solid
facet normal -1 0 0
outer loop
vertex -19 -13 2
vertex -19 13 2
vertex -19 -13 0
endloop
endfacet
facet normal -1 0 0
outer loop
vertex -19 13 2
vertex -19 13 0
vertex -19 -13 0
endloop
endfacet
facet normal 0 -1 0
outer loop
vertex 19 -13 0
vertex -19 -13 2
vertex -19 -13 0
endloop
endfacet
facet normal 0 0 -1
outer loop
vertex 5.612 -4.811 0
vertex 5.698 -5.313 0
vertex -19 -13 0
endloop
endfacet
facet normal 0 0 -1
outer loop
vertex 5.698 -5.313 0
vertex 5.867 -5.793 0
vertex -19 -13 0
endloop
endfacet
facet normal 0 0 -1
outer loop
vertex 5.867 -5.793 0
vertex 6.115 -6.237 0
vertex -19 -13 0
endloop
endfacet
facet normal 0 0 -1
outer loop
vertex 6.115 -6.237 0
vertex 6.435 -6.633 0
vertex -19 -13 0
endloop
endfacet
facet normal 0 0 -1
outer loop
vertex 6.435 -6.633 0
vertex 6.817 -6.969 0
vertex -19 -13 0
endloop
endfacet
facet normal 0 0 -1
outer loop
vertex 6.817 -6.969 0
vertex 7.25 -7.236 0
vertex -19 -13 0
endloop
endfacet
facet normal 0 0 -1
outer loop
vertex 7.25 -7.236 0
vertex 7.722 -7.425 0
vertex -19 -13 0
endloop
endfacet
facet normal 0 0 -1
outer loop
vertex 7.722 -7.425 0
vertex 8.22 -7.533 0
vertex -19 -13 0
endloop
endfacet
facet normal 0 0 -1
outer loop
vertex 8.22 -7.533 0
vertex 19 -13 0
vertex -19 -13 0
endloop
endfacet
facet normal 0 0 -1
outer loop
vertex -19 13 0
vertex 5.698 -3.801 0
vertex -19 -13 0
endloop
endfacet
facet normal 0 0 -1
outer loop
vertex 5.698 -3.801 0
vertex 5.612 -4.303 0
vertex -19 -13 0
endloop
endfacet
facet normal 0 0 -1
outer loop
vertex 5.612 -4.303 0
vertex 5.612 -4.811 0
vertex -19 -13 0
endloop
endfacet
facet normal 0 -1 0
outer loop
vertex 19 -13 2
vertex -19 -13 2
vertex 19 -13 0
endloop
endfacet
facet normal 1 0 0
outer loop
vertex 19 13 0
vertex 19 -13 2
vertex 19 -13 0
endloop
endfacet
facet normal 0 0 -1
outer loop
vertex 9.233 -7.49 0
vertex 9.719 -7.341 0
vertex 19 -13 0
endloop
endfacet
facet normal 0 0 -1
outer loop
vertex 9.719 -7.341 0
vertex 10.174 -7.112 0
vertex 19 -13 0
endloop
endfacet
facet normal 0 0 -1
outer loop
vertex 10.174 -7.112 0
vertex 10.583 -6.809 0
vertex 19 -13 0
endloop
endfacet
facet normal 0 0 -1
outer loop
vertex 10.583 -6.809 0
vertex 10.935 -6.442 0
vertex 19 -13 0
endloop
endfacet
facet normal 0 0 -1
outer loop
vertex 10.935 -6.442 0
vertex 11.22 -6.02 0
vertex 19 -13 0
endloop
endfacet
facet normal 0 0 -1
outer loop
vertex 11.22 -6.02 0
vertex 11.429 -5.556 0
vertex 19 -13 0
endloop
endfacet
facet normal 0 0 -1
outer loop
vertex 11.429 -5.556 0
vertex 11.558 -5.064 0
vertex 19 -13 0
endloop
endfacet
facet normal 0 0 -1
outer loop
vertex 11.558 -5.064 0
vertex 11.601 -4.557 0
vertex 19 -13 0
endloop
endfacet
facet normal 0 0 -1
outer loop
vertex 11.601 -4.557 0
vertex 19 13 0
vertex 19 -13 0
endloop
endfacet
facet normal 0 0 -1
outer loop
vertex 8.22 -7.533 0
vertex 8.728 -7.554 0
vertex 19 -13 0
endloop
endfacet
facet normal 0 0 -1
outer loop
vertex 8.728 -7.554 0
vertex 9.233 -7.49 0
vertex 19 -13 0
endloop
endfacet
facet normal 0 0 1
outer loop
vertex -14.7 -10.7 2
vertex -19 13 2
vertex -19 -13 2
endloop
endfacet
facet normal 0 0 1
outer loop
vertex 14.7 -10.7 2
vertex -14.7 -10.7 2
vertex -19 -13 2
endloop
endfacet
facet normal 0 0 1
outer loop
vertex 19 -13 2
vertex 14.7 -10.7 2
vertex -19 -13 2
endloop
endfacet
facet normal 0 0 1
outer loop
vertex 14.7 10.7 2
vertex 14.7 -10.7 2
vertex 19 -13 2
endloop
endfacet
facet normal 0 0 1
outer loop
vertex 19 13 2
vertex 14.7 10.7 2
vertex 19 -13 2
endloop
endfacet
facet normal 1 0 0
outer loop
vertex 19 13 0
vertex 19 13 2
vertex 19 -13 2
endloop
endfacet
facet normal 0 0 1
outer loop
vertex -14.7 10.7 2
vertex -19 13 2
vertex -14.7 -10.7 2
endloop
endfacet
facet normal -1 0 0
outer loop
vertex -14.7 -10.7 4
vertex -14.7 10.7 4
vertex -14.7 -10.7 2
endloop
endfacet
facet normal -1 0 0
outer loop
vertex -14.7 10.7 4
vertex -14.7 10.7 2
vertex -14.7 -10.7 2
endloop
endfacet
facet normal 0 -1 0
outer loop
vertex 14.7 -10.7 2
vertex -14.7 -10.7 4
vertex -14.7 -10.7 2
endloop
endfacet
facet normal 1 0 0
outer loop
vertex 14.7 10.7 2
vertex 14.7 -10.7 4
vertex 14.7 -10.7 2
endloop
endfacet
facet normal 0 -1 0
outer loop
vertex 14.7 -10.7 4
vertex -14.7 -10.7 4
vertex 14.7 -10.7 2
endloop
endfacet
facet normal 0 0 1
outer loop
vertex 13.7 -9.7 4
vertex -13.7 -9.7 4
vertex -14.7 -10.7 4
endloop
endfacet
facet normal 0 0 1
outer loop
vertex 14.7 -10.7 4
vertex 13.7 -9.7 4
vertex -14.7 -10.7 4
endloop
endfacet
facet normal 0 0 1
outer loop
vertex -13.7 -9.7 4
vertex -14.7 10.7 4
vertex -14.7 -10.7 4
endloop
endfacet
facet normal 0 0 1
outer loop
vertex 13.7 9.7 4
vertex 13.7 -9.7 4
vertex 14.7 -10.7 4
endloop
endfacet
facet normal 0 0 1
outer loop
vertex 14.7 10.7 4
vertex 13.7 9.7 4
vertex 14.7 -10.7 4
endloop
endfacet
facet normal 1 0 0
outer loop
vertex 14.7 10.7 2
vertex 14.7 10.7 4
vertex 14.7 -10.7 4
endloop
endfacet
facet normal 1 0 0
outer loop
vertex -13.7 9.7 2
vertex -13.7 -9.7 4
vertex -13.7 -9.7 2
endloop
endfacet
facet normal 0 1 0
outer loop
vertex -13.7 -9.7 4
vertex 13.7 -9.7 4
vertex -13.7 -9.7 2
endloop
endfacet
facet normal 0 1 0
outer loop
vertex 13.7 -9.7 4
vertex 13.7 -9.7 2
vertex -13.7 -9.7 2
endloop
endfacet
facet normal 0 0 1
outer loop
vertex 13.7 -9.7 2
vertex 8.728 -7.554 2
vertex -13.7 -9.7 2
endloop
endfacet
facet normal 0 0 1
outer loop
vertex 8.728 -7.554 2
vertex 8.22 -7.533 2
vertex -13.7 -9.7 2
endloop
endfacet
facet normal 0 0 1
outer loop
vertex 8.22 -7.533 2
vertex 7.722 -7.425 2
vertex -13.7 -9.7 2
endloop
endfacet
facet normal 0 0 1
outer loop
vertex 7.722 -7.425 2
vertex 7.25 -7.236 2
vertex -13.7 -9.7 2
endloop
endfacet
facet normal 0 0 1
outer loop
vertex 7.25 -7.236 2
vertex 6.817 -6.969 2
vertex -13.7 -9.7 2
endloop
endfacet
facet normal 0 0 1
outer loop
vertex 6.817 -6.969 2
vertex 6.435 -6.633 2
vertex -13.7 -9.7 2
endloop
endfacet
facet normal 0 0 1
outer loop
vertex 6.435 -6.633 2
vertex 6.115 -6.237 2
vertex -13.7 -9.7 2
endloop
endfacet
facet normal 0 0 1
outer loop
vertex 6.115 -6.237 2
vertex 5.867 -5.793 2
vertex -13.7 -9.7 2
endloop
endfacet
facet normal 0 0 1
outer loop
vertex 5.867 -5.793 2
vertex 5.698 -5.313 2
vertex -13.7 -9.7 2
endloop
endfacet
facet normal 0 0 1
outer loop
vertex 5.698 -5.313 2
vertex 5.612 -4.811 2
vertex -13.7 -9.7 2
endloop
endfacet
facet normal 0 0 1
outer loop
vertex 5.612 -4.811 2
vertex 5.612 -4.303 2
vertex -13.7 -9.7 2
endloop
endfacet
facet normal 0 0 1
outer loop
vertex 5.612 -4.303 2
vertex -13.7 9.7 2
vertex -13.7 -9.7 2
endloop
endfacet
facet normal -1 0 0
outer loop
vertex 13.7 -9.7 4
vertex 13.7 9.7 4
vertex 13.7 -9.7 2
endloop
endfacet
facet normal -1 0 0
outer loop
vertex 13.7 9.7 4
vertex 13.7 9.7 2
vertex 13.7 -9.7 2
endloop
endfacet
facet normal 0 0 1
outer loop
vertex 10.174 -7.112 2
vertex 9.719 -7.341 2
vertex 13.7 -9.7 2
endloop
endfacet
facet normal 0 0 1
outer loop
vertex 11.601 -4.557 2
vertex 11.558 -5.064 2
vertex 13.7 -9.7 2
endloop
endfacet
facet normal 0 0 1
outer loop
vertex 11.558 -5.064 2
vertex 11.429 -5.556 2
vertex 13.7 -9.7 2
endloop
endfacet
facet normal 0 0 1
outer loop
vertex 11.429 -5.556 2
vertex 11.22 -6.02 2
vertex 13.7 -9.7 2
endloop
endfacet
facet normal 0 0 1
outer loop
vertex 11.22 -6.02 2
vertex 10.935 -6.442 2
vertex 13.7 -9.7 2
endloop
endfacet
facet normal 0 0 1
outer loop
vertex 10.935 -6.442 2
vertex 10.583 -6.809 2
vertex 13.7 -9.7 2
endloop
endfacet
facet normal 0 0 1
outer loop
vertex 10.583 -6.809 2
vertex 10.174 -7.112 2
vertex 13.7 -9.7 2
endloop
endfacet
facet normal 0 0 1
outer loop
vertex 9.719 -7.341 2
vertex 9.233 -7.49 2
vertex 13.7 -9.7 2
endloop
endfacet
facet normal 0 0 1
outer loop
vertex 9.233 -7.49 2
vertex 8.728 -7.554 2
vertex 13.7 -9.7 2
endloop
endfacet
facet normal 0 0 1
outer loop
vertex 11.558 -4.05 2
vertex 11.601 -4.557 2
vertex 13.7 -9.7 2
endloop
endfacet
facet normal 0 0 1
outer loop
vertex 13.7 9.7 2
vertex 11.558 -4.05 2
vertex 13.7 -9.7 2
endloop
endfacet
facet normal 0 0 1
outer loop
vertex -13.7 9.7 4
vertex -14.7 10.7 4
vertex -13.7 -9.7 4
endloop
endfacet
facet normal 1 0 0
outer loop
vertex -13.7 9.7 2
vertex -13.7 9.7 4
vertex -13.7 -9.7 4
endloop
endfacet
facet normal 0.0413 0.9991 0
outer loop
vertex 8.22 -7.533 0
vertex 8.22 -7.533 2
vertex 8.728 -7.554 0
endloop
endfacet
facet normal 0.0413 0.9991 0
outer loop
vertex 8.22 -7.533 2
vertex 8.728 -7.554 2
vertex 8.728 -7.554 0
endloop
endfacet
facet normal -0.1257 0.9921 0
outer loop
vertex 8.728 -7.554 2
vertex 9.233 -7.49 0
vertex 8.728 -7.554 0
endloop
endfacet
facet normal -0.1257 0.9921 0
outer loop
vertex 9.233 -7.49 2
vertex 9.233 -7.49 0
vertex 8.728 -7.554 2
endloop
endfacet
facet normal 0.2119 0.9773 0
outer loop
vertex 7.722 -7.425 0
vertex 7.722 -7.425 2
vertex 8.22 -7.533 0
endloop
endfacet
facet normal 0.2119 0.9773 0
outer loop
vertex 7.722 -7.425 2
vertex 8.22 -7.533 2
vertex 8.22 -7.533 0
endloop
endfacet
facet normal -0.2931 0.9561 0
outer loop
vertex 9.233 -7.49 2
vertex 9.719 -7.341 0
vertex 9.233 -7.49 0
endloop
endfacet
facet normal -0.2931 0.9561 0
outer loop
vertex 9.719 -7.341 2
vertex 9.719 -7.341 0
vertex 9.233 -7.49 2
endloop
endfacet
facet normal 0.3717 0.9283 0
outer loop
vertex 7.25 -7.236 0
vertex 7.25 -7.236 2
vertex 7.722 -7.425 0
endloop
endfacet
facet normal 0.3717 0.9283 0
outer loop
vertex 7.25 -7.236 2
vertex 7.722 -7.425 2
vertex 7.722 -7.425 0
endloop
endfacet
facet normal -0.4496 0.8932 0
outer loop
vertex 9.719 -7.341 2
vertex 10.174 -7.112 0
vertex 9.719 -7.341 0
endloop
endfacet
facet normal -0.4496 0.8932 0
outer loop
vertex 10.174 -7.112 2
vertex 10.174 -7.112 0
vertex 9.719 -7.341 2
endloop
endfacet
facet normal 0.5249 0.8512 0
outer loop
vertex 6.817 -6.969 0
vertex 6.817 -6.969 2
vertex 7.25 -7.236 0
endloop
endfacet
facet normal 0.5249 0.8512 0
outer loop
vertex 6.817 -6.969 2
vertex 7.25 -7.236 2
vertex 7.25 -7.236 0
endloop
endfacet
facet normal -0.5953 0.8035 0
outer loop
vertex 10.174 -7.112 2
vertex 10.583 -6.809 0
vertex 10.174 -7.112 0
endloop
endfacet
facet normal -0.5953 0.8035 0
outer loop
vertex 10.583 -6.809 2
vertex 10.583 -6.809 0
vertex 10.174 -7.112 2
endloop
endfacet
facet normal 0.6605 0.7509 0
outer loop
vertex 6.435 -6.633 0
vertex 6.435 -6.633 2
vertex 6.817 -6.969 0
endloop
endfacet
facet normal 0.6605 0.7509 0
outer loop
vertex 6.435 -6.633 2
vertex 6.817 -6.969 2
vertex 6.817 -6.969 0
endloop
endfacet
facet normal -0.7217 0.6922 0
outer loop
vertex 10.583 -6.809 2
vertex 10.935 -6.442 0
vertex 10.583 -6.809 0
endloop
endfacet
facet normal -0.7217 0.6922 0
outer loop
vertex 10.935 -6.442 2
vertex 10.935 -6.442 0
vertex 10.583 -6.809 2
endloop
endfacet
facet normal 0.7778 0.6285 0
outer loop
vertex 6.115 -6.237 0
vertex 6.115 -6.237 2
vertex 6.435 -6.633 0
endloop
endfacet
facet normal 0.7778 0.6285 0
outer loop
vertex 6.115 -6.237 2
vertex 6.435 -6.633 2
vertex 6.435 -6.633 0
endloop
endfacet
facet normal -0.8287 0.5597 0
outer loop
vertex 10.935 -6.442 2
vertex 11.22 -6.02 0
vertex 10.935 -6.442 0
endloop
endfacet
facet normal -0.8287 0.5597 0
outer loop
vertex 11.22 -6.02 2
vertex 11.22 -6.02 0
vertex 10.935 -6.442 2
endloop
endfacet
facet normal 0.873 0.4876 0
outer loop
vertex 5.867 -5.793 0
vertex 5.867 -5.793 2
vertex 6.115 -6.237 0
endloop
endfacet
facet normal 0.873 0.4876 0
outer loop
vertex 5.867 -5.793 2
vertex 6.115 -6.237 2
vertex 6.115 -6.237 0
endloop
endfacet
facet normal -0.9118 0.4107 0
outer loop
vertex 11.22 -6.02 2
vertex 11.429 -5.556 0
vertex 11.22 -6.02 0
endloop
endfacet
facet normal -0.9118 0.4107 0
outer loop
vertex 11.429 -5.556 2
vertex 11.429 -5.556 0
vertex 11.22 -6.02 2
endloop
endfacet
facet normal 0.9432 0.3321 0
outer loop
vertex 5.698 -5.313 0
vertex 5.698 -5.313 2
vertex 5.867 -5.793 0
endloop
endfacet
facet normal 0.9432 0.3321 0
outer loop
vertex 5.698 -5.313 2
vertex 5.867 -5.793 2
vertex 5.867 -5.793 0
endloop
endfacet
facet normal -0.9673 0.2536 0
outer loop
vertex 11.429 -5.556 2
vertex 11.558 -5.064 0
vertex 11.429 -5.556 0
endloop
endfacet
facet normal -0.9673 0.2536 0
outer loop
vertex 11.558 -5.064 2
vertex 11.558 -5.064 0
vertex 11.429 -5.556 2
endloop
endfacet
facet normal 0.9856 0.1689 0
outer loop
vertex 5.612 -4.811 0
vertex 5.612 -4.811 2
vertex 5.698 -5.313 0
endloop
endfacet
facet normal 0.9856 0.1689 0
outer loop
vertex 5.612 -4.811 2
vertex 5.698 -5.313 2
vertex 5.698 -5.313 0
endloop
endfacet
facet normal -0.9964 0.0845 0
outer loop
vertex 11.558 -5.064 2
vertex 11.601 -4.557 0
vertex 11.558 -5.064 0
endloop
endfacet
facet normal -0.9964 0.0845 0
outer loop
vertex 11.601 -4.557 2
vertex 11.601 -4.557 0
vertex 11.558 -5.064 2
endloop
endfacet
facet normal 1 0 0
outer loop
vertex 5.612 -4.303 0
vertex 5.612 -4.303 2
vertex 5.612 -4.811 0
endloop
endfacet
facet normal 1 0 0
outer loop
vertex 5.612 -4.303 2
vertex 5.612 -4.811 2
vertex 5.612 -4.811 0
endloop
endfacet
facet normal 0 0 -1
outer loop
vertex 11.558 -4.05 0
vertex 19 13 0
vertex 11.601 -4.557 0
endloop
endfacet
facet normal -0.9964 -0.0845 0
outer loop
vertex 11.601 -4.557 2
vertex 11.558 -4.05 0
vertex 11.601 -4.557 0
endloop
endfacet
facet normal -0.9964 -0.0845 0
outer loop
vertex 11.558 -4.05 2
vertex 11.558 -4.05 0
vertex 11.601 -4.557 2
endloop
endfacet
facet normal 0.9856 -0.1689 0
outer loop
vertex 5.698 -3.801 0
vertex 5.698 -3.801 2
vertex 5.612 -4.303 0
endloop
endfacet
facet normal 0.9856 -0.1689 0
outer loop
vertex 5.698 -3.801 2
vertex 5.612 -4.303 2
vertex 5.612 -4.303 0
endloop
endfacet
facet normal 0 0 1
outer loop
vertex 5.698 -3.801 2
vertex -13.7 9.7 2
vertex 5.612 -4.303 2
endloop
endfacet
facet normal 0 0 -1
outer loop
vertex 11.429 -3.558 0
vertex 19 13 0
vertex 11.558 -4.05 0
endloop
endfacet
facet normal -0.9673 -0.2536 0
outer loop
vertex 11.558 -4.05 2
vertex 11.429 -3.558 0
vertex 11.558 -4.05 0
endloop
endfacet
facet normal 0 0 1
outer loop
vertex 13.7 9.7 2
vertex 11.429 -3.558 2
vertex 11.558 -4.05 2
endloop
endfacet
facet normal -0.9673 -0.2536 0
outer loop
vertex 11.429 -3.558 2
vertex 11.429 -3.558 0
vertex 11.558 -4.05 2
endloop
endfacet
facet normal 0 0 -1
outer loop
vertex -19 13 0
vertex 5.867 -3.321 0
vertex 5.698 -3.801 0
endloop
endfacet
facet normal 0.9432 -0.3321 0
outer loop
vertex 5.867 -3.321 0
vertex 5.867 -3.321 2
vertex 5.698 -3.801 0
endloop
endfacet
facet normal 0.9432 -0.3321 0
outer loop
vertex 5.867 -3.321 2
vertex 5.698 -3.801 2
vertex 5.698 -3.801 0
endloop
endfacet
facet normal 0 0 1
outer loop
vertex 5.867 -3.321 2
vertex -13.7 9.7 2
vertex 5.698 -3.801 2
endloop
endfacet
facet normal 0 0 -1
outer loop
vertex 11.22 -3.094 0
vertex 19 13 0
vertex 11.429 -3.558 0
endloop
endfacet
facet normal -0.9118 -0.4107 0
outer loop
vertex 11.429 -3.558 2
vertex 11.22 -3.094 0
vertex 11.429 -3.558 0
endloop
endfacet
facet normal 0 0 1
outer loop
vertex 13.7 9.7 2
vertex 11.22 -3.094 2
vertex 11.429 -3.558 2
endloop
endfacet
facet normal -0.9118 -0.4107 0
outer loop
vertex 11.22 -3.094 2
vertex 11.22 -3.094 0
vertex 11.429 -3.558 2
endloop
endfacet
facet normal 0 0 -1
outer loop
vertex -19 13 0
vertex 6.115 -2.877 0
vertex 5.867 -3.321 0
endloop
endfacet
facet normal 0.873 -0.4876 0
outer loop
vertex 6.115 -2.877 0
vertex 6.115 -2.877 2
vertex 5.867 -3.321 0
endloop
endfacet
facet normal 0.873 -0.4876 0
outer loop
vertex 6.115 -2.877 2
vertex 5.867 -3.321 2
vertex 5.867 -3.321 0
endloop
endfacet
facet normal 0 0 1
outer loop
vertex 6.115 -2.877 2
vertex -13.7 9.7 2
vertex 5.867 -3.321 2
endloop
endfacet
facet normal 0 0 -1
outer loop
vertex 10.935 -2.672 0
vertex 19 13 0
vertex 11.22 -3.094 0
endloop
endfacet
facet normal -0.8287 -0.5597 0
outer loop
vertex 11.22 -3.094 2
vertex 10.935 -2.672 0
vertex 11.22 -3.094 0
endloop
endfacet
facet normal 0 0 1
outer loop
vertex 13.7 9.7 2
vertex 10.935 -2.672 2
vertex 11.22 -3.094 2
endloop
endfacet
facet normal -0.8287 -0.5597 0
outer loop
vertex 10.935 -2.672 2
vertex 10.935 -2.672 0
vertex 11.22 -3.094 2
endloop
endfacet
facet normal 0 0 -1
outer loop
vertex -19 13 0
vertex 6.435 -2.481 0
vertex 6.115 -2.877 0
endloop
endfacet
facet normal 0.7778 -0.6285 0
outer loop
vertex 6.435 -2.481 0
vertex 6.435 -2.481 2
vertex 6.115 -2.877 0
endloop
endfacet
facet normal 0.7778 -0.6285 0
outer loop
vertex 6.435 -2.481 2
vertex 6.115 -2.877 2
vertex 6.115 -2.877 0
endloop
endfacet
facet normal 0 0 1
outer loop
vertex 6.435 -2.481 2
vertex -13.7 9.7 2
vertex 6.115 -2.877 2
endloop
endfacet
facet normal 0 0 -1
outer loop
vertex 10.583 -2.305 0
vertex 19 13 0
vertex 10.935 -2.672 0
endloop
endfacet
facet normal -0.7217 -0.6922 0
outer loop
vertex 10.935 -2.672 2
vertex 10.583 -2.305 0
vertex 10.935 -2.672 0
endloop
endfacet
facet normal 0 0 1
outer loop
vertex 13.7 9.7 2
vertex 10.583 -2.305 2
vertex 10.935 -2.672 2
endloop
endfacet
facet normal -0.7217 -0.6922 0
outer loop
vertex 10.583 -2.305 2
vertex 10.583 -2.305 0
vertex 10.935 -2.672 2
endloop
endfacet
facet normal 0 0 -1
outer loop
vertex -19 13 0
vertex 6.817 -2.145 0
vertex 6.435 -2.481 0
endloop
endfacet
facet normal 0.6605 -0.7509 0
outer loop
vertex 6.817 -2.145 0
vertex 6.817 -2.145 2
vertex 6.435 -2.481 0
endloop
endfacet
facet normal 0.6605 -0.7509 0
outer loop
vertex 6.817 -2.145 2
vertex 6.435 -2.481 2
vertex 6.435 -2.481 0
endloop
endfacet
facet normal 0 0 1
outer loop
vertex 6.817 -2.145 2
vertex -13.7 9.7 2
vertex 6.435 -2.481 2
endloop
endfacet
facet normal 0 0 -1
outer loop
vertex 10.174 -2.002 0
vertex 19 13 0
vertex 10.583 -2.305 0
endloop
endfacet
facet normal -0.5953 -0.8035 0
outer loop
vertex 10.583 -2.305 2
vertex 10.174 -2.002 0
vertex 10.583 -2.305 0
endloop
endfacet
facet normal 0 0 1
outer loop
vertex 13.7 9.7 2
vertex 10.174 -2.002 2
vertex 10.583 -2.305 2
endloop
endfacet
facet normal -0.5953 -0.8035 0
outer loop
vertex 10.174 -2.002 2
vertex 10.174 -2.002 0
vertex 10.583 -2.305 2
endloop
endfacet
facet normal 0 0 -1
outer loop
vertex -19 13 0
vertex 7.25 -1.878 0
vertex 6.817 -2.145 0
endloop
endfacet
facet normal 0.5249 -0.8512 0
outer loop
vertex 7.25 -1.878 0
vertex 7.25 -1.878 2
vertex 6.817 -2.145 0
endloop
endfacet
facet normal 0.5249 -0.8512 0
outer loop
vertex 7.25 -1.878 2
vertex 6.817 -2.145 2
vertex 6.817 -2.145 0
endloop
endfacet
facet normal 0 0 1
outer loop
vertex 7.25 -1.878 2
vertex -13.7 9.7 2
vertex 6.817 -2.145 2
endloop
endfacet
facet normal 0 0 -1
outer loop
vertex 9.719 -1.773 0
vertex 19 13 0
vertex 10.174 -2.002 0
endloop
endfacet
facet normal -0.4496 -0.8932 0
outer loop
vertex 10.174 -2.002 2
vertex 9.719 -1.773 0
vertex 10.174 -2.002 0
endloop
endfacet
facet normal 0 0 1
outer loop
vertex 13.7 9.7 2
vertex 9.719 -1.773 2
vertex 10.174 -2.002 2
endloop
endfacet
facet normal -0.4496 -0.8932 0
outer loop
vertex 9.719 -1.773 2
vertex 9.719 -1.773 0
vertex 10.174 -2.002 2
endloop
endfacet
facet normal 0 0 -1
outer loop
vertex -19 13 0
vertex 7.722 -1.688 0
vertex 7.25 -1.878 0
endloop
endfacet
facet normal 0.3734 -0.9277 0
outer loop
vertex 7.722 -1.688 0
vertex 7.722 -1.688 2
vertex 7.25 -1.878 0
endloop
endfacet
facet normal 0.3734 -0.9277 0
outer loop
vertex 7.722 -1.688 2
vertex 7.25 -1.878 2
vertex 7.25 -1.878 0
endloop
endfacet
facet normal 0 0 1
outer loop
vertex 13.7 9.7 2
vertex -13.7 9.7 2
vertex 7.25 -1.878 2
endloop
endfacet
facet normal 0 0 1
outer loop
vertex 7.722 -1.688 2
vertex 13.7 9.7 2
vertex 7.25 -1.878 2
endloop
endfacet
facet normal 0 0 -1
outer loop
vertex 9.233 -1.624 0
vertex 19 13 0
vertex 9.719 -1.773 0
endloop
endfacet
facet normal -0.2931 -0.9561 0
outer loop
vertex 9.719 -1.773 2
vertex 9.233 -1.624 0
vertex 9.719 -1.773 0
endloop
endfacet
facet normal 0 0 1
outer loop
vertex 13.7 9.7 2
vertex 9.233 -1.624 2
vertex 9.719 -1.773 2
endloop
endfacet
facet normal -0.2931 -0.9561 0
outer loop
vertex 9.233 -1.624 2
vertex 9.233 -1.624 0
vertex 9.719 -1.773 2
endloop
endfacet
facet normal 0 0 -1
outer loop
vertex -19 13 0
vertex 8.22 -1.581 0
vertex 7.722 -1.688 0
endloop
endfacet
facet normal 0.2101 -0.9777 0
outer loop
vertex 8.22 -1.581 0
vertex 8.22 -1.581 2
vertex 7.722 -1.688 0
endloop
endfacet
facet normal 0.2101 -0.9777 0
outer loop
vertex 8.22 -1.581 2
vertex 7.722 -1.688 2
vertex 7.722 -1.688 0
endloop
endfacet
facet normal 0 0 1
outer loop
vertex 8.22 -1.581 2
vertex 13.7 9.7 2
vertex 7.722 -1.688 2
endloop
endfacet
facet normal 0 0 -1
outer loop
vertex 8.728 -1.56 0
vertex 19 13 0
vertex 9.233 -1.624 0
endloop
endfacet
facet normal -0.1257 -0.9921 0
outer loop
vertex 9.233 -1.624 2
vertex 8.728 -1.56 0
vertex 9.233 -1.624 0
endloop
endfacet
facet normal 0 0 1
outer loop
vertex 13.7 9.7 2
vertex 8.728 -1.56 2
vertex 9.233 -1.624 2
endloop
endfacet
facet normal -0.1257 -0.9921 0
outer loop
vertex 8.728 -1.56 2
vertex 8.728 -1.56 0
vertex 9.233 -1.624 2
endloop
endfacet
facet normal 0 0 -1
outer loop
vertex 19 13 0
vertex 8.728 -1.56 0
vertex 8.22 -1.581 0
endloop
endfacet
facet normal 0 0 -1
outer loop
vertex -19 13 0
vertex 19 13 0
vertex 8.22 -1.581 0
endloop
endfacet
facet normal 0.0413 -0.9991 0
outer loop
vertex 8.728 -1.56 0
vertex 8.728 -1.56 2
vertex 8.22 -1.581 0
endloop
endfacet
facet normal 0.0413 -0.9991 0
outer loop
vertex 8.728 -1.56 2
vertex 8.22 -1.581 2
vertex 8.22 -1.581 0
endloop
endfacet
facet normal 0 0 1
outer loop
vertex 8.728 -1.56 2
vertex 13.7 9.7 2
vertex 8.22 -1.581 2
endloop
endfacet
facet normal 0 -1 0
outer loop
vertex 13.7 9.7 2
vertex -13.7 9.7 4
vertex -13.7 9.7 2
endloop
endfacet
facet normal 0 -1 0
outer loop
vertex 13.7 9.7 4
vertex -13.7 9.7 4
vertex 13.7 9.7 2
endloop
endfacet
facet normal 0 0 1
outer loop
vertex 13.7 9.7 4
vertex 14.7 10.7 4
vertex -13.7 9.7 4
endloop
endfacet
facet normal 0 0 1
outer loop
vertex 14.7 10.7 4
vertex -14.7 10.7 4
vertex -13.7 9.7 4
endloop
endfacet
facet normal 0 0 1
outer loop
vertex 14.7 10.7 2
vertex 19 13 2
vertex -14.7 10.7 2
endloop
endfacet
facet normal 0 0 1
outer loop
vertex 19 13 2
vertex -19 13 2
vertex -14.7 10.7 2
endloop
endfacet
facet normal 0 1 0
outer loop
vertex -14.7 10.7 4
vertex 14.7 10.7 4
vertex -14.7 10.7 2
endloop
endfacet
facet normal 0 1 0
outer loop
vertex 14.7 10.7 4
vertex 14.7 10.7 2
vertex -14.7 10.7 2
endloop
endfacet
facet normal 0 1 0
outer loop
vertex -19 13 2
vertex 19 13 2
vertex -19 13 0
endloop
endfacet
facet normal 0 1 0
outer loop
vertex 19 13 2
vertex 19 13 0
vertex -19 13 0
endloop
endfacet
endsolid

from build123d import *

# Parameters (mm, degrees)
SKETCH1_W           = 38
SKETCH1_H           = 26
BOSS_EXTRUDE1_DEPTH = 2
SKETCH4_W           = 29.4
SKETCH4_H           = 21.4
SKETCH4_W_2         = 27.4
SKETCH4_H_2         = 19.4
BOSS_EXTRUDE2_DEPTH = 2
SKETCH5_R           = 3
CUT_EXTRUDE1_DEPTH  = 2


with BuildPart() as part:
    # Sketch1 → Boss-Extrude1 (new body)
    with BuildSketch(Plane.XY):
        Rectangle(SKETCH1_W, SKETCH1_H)
    extrude(amount=BOSS_EXTRUDE1_DEPTH)

    # Sketch4 → Boss-Extrude2 (add)
    with BuildSketch(Plane.XY.offset(2)):
        Rectangle(SKETCH4_W, SKETCH4_H)
        Rectangle(SKETCH4_W_2, SKETCH4_H_2, mode=Mode.SUBTRACT)
    extrude(amount=BOSS_EXTRUDE2_DEPTH)

    # Sketch5 → Cut-Extrude1 (cut)
    with BuildSketch(Plane.XY.offset(2)):
        with Locations((8.600842855, -4.556950786)):
            Circle(SKETCH5_R)
    extrude(amount=-CUT_EXTRUDE1_DEPTH, mode=Mode.SUBTRACT)


solid = part.part
